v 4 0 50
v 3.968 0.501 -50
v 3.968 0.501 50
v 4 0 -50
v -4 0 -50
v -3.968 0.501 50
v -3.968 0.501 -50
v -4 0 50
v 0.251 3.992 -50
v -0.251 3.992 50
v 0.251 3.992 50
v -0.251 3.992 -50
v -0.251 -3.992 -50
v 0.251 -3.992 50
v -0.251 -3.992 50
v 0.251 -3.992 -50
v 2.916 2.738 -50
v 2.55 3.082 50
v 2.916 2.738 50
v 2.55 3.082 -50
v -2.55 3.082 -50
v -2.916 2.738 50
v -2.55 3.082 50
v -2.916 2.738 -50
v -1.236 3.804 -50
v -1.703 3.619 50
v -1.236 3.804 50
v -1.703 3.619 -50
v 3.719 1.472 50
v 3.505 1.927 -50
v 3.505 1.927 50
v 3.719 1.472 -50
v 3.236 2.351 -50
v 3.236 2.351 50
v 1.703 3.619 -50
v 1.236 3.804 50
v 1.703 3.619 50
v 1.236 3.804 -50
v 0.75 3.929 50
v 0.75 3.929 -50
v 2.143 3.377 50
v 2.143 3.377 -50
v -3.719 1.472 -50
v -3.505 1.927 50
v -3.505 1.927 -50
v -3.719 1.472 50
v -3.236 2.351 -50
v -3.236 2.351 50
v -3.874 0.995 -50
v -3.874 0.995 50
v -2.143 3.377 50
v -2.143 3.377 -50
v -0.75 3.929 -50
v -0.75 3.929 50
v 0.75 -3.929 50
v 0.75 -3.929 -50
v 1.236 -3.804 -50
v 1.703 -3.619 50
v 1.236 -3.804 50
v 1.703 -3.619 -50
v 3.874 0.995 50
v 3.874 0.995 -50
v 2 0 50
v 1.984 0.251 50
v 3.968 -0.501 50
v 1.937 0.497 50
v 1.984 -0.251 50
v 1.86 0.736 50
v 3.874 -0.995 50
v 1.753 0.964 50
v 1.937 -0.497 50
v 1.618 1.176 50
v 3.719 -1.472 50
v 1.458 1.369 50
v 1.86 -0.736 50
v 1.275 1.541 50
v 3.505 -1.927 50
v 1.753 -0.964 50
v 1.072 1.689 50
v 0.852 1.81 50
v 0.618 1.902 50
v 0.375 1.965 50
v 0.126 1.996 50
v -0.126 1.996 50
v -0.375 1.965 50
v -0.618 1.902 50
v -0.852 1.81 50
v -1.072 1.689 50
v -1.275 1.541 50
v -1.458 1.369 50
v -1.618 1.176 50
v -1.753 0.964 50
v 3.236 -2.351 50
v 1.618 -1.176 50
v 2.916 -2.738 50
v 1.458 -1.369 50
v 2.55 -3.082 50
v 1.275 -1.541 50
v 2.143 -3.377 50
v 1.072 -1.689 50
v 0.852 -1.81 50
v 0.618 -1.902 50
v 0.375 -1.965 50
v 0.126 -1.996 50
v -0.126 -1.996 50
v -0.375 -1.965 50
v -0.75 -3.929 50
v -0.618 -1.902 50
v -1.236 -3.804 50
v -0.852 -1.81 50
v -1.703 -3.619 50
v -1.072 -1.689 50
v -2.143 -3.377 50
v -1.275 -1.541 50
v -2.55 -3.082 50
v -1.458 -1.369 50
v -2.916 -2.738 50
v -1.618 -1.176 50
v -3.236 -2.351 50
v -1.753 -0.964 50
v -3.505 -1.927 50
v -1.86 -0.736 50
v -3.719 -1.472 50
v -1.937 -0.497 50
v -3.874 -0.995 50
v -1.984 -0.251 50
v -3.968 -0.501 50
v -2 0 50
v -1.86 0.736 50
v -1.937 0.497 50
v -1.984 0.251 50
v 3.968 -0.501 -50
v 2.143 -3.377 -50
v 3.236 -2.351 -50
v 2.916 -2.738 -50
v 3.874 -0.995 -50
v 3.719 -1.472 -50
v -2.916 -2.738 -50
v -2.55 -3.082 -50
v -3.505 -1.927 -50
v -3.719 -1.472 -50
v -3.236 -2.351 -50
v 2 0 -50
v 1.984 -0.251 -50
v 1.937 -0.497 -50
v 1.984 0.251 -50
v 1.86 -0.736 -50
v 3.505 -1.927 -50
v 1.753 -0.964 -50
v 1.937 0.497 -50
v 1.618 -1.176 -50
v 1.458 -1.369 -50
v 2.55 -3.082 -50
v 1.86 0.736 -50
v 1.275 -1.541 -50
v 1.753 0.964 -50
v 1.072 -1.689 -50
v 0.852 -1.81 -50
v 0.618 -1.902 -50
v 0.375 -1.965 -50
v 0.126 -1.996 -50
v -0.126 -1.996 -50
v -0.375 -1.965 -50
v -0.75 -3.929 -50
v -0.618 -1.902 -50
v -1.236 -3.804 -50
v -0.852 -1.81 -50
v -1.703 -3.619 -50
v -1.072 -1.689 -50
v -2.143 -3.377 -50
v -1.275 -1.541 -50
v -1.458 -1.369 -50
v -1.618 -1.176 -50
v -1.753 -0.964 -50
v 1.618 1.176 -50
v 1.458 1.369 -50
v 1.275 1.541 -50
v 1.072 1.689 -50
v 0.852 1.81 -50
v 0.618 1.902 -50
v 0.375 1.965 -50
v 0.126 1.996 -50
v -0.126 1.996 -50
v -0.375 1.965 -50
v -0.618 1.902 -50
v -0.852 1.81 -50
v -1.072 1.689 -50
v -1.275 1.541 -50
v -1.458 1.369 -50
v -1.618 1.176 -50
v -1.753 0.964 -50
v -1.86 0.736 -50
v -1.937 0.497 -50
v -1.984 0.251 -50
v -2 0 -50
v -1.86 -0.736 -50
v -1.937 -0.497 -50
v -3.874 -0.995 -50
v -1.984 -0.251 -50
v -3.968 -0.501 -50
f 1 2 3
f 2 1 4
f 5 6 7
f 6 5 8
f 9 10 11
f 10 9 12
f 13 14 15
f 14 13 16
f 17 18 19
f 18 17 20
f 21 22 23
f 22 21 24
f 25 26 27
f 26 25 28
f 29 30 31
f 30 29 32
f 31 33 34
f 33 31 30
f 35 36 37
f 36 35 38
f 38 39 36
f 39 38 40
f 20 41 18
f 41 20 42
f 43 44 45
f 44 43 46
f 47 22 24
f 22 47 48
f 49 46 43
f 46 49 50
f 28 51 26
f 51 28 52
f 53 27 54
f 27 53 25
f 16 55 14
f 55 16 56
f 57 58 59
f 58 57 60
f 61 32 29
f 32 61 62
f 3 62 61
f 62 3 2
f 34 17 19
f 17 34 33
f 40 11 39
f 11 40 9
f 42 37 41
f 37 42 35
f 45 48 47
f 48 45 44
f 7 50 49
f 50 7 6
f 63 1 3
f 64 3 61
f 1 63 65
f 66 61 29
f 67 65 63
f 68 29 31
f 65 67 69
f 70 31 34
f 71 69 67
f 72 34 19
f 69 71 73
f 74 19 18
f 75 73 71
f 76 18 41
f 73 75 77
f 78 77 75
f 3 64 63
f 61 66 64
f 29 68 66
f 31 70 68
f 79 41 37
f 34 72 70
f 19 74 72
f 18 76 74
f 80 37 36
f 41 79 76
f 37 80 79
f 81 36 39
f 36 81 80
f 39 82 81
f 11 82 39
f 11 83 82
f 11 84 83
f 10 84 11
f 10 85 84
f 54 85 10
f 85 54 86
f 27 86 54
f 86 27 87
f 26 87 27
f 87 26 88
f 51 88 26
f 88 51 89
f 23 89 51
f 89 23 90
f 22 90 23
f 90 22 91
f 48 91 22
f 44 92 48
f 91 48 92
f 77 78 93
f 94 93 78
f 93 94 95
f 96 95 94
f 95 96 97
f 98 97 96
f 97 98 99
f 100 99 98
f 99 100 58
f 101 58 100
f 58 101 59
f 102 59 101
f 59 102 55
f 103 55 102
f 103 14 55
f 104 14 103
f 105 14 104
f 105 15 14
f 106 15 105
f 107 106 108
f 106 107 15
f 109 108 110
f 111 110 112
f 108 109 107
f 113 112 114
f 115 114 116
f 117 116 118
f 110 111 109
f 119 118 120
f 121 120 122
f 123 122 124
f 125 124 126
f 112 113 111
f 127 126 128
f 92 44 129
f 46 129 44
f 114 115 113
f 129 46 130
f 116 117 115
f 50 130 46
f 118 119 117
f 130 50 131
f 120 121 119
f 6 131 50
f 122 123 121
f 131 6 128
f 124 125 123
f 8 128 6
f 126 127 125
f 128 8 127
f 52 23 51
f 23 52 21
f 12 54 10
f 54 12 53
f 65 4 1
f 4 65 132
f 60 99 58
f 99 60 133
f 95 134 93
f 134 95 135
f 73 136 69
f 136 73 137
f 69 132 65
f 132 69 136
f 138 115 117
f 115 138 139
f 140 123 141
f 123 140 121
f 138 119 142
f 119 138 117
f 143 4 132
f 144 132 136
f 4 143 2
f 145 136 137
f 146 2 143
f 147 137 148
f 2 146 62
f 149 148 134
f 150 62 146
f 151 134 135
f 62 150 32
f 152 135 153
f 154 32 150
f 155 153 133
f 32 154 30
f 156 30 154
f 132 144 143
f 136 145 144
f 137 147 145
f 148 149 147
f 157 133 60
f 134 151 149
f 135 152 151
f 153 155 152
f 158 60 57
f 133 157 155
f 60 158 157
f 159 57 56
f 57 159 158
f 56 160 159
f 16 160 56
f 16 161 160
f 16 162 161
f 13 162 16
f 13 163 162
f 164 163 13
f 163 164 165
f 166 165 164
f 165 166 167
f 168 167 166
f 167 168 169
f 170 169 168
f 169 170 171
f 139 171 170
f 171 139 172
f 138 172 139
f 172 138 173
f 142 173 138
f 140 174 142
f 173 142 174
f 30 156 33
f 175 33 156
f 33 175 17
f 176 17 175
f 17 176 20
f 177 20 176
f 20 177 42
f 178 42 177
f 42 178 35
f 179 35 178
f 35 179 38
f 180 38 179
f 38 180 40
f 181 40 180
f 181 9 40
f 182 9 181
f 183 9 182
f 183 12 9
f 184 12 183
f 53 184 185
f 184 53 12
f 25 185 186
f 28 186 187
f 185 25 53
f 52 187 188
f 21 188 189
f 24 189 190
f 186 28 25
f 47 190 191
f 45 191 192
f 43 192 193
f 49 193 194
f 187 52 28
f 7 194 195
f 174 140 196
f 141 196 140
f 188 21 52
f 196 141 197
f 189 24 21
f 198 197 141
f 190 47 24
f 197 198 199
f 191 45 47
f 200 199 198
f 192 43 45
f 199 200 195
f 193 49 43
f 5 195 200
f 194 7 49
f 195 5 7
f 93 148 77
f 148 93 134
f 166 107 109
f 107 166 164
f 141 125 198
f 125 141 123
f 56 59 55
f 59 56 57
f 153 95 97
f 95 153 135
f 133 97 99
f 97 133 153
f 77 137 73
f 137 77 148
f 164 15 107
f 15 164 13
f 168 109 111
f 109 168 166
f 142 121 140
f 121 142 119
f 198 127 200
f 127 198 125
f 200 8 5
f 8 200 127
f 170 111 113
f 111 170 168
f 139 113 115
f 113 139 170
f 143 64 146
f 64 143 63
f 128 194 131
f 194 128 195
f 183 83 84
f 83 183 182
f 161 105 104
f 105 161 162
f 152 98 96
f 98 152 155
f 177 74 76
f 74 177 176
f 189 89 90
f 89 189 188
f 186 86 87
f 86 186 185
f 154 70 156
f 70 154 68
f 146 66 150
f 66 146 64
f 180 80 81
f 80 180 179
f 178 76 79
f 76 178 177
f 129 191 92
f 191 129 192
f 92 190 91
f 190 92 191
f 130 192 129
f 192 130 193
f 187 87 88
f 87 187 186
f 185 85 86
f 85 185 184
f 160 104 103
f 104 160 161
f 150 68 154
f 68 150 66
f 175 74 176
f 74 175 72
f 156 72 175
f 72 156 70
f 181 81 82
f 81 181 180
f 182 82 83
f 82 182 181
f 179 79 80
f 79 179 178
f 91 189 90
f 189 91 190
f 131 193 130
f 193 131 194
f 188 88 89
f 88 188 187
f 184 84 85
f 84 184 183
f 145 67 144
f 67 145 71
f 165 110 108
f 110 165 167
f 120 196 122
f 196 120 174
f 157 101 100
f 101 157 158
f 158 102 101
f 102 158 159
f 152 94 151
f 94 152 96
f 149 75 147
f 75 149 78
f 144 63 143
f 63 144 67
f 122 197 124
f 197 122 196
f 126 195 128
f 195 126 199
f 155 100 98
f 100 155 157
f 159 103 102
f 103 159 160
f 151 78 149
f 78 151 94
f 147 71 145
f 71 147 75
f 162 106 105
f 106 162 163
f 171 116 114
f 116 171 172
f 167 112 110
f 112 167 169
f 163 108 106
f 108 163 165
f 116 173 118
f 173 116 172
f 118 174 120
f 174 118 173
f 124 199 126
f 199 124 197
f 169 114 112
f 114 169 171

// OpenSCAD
$fn = 50;


difference() {
	union() {
		translate(v = [0, 0, -50.0000000000]) {
			cylinder(h = 100, r = 4.0000000000);
		}
	}
	union() {
		translate(v = [0, 0, -100.0000000000]) {
			cylinder(h = 200, r = 2);
		}
	}
}
